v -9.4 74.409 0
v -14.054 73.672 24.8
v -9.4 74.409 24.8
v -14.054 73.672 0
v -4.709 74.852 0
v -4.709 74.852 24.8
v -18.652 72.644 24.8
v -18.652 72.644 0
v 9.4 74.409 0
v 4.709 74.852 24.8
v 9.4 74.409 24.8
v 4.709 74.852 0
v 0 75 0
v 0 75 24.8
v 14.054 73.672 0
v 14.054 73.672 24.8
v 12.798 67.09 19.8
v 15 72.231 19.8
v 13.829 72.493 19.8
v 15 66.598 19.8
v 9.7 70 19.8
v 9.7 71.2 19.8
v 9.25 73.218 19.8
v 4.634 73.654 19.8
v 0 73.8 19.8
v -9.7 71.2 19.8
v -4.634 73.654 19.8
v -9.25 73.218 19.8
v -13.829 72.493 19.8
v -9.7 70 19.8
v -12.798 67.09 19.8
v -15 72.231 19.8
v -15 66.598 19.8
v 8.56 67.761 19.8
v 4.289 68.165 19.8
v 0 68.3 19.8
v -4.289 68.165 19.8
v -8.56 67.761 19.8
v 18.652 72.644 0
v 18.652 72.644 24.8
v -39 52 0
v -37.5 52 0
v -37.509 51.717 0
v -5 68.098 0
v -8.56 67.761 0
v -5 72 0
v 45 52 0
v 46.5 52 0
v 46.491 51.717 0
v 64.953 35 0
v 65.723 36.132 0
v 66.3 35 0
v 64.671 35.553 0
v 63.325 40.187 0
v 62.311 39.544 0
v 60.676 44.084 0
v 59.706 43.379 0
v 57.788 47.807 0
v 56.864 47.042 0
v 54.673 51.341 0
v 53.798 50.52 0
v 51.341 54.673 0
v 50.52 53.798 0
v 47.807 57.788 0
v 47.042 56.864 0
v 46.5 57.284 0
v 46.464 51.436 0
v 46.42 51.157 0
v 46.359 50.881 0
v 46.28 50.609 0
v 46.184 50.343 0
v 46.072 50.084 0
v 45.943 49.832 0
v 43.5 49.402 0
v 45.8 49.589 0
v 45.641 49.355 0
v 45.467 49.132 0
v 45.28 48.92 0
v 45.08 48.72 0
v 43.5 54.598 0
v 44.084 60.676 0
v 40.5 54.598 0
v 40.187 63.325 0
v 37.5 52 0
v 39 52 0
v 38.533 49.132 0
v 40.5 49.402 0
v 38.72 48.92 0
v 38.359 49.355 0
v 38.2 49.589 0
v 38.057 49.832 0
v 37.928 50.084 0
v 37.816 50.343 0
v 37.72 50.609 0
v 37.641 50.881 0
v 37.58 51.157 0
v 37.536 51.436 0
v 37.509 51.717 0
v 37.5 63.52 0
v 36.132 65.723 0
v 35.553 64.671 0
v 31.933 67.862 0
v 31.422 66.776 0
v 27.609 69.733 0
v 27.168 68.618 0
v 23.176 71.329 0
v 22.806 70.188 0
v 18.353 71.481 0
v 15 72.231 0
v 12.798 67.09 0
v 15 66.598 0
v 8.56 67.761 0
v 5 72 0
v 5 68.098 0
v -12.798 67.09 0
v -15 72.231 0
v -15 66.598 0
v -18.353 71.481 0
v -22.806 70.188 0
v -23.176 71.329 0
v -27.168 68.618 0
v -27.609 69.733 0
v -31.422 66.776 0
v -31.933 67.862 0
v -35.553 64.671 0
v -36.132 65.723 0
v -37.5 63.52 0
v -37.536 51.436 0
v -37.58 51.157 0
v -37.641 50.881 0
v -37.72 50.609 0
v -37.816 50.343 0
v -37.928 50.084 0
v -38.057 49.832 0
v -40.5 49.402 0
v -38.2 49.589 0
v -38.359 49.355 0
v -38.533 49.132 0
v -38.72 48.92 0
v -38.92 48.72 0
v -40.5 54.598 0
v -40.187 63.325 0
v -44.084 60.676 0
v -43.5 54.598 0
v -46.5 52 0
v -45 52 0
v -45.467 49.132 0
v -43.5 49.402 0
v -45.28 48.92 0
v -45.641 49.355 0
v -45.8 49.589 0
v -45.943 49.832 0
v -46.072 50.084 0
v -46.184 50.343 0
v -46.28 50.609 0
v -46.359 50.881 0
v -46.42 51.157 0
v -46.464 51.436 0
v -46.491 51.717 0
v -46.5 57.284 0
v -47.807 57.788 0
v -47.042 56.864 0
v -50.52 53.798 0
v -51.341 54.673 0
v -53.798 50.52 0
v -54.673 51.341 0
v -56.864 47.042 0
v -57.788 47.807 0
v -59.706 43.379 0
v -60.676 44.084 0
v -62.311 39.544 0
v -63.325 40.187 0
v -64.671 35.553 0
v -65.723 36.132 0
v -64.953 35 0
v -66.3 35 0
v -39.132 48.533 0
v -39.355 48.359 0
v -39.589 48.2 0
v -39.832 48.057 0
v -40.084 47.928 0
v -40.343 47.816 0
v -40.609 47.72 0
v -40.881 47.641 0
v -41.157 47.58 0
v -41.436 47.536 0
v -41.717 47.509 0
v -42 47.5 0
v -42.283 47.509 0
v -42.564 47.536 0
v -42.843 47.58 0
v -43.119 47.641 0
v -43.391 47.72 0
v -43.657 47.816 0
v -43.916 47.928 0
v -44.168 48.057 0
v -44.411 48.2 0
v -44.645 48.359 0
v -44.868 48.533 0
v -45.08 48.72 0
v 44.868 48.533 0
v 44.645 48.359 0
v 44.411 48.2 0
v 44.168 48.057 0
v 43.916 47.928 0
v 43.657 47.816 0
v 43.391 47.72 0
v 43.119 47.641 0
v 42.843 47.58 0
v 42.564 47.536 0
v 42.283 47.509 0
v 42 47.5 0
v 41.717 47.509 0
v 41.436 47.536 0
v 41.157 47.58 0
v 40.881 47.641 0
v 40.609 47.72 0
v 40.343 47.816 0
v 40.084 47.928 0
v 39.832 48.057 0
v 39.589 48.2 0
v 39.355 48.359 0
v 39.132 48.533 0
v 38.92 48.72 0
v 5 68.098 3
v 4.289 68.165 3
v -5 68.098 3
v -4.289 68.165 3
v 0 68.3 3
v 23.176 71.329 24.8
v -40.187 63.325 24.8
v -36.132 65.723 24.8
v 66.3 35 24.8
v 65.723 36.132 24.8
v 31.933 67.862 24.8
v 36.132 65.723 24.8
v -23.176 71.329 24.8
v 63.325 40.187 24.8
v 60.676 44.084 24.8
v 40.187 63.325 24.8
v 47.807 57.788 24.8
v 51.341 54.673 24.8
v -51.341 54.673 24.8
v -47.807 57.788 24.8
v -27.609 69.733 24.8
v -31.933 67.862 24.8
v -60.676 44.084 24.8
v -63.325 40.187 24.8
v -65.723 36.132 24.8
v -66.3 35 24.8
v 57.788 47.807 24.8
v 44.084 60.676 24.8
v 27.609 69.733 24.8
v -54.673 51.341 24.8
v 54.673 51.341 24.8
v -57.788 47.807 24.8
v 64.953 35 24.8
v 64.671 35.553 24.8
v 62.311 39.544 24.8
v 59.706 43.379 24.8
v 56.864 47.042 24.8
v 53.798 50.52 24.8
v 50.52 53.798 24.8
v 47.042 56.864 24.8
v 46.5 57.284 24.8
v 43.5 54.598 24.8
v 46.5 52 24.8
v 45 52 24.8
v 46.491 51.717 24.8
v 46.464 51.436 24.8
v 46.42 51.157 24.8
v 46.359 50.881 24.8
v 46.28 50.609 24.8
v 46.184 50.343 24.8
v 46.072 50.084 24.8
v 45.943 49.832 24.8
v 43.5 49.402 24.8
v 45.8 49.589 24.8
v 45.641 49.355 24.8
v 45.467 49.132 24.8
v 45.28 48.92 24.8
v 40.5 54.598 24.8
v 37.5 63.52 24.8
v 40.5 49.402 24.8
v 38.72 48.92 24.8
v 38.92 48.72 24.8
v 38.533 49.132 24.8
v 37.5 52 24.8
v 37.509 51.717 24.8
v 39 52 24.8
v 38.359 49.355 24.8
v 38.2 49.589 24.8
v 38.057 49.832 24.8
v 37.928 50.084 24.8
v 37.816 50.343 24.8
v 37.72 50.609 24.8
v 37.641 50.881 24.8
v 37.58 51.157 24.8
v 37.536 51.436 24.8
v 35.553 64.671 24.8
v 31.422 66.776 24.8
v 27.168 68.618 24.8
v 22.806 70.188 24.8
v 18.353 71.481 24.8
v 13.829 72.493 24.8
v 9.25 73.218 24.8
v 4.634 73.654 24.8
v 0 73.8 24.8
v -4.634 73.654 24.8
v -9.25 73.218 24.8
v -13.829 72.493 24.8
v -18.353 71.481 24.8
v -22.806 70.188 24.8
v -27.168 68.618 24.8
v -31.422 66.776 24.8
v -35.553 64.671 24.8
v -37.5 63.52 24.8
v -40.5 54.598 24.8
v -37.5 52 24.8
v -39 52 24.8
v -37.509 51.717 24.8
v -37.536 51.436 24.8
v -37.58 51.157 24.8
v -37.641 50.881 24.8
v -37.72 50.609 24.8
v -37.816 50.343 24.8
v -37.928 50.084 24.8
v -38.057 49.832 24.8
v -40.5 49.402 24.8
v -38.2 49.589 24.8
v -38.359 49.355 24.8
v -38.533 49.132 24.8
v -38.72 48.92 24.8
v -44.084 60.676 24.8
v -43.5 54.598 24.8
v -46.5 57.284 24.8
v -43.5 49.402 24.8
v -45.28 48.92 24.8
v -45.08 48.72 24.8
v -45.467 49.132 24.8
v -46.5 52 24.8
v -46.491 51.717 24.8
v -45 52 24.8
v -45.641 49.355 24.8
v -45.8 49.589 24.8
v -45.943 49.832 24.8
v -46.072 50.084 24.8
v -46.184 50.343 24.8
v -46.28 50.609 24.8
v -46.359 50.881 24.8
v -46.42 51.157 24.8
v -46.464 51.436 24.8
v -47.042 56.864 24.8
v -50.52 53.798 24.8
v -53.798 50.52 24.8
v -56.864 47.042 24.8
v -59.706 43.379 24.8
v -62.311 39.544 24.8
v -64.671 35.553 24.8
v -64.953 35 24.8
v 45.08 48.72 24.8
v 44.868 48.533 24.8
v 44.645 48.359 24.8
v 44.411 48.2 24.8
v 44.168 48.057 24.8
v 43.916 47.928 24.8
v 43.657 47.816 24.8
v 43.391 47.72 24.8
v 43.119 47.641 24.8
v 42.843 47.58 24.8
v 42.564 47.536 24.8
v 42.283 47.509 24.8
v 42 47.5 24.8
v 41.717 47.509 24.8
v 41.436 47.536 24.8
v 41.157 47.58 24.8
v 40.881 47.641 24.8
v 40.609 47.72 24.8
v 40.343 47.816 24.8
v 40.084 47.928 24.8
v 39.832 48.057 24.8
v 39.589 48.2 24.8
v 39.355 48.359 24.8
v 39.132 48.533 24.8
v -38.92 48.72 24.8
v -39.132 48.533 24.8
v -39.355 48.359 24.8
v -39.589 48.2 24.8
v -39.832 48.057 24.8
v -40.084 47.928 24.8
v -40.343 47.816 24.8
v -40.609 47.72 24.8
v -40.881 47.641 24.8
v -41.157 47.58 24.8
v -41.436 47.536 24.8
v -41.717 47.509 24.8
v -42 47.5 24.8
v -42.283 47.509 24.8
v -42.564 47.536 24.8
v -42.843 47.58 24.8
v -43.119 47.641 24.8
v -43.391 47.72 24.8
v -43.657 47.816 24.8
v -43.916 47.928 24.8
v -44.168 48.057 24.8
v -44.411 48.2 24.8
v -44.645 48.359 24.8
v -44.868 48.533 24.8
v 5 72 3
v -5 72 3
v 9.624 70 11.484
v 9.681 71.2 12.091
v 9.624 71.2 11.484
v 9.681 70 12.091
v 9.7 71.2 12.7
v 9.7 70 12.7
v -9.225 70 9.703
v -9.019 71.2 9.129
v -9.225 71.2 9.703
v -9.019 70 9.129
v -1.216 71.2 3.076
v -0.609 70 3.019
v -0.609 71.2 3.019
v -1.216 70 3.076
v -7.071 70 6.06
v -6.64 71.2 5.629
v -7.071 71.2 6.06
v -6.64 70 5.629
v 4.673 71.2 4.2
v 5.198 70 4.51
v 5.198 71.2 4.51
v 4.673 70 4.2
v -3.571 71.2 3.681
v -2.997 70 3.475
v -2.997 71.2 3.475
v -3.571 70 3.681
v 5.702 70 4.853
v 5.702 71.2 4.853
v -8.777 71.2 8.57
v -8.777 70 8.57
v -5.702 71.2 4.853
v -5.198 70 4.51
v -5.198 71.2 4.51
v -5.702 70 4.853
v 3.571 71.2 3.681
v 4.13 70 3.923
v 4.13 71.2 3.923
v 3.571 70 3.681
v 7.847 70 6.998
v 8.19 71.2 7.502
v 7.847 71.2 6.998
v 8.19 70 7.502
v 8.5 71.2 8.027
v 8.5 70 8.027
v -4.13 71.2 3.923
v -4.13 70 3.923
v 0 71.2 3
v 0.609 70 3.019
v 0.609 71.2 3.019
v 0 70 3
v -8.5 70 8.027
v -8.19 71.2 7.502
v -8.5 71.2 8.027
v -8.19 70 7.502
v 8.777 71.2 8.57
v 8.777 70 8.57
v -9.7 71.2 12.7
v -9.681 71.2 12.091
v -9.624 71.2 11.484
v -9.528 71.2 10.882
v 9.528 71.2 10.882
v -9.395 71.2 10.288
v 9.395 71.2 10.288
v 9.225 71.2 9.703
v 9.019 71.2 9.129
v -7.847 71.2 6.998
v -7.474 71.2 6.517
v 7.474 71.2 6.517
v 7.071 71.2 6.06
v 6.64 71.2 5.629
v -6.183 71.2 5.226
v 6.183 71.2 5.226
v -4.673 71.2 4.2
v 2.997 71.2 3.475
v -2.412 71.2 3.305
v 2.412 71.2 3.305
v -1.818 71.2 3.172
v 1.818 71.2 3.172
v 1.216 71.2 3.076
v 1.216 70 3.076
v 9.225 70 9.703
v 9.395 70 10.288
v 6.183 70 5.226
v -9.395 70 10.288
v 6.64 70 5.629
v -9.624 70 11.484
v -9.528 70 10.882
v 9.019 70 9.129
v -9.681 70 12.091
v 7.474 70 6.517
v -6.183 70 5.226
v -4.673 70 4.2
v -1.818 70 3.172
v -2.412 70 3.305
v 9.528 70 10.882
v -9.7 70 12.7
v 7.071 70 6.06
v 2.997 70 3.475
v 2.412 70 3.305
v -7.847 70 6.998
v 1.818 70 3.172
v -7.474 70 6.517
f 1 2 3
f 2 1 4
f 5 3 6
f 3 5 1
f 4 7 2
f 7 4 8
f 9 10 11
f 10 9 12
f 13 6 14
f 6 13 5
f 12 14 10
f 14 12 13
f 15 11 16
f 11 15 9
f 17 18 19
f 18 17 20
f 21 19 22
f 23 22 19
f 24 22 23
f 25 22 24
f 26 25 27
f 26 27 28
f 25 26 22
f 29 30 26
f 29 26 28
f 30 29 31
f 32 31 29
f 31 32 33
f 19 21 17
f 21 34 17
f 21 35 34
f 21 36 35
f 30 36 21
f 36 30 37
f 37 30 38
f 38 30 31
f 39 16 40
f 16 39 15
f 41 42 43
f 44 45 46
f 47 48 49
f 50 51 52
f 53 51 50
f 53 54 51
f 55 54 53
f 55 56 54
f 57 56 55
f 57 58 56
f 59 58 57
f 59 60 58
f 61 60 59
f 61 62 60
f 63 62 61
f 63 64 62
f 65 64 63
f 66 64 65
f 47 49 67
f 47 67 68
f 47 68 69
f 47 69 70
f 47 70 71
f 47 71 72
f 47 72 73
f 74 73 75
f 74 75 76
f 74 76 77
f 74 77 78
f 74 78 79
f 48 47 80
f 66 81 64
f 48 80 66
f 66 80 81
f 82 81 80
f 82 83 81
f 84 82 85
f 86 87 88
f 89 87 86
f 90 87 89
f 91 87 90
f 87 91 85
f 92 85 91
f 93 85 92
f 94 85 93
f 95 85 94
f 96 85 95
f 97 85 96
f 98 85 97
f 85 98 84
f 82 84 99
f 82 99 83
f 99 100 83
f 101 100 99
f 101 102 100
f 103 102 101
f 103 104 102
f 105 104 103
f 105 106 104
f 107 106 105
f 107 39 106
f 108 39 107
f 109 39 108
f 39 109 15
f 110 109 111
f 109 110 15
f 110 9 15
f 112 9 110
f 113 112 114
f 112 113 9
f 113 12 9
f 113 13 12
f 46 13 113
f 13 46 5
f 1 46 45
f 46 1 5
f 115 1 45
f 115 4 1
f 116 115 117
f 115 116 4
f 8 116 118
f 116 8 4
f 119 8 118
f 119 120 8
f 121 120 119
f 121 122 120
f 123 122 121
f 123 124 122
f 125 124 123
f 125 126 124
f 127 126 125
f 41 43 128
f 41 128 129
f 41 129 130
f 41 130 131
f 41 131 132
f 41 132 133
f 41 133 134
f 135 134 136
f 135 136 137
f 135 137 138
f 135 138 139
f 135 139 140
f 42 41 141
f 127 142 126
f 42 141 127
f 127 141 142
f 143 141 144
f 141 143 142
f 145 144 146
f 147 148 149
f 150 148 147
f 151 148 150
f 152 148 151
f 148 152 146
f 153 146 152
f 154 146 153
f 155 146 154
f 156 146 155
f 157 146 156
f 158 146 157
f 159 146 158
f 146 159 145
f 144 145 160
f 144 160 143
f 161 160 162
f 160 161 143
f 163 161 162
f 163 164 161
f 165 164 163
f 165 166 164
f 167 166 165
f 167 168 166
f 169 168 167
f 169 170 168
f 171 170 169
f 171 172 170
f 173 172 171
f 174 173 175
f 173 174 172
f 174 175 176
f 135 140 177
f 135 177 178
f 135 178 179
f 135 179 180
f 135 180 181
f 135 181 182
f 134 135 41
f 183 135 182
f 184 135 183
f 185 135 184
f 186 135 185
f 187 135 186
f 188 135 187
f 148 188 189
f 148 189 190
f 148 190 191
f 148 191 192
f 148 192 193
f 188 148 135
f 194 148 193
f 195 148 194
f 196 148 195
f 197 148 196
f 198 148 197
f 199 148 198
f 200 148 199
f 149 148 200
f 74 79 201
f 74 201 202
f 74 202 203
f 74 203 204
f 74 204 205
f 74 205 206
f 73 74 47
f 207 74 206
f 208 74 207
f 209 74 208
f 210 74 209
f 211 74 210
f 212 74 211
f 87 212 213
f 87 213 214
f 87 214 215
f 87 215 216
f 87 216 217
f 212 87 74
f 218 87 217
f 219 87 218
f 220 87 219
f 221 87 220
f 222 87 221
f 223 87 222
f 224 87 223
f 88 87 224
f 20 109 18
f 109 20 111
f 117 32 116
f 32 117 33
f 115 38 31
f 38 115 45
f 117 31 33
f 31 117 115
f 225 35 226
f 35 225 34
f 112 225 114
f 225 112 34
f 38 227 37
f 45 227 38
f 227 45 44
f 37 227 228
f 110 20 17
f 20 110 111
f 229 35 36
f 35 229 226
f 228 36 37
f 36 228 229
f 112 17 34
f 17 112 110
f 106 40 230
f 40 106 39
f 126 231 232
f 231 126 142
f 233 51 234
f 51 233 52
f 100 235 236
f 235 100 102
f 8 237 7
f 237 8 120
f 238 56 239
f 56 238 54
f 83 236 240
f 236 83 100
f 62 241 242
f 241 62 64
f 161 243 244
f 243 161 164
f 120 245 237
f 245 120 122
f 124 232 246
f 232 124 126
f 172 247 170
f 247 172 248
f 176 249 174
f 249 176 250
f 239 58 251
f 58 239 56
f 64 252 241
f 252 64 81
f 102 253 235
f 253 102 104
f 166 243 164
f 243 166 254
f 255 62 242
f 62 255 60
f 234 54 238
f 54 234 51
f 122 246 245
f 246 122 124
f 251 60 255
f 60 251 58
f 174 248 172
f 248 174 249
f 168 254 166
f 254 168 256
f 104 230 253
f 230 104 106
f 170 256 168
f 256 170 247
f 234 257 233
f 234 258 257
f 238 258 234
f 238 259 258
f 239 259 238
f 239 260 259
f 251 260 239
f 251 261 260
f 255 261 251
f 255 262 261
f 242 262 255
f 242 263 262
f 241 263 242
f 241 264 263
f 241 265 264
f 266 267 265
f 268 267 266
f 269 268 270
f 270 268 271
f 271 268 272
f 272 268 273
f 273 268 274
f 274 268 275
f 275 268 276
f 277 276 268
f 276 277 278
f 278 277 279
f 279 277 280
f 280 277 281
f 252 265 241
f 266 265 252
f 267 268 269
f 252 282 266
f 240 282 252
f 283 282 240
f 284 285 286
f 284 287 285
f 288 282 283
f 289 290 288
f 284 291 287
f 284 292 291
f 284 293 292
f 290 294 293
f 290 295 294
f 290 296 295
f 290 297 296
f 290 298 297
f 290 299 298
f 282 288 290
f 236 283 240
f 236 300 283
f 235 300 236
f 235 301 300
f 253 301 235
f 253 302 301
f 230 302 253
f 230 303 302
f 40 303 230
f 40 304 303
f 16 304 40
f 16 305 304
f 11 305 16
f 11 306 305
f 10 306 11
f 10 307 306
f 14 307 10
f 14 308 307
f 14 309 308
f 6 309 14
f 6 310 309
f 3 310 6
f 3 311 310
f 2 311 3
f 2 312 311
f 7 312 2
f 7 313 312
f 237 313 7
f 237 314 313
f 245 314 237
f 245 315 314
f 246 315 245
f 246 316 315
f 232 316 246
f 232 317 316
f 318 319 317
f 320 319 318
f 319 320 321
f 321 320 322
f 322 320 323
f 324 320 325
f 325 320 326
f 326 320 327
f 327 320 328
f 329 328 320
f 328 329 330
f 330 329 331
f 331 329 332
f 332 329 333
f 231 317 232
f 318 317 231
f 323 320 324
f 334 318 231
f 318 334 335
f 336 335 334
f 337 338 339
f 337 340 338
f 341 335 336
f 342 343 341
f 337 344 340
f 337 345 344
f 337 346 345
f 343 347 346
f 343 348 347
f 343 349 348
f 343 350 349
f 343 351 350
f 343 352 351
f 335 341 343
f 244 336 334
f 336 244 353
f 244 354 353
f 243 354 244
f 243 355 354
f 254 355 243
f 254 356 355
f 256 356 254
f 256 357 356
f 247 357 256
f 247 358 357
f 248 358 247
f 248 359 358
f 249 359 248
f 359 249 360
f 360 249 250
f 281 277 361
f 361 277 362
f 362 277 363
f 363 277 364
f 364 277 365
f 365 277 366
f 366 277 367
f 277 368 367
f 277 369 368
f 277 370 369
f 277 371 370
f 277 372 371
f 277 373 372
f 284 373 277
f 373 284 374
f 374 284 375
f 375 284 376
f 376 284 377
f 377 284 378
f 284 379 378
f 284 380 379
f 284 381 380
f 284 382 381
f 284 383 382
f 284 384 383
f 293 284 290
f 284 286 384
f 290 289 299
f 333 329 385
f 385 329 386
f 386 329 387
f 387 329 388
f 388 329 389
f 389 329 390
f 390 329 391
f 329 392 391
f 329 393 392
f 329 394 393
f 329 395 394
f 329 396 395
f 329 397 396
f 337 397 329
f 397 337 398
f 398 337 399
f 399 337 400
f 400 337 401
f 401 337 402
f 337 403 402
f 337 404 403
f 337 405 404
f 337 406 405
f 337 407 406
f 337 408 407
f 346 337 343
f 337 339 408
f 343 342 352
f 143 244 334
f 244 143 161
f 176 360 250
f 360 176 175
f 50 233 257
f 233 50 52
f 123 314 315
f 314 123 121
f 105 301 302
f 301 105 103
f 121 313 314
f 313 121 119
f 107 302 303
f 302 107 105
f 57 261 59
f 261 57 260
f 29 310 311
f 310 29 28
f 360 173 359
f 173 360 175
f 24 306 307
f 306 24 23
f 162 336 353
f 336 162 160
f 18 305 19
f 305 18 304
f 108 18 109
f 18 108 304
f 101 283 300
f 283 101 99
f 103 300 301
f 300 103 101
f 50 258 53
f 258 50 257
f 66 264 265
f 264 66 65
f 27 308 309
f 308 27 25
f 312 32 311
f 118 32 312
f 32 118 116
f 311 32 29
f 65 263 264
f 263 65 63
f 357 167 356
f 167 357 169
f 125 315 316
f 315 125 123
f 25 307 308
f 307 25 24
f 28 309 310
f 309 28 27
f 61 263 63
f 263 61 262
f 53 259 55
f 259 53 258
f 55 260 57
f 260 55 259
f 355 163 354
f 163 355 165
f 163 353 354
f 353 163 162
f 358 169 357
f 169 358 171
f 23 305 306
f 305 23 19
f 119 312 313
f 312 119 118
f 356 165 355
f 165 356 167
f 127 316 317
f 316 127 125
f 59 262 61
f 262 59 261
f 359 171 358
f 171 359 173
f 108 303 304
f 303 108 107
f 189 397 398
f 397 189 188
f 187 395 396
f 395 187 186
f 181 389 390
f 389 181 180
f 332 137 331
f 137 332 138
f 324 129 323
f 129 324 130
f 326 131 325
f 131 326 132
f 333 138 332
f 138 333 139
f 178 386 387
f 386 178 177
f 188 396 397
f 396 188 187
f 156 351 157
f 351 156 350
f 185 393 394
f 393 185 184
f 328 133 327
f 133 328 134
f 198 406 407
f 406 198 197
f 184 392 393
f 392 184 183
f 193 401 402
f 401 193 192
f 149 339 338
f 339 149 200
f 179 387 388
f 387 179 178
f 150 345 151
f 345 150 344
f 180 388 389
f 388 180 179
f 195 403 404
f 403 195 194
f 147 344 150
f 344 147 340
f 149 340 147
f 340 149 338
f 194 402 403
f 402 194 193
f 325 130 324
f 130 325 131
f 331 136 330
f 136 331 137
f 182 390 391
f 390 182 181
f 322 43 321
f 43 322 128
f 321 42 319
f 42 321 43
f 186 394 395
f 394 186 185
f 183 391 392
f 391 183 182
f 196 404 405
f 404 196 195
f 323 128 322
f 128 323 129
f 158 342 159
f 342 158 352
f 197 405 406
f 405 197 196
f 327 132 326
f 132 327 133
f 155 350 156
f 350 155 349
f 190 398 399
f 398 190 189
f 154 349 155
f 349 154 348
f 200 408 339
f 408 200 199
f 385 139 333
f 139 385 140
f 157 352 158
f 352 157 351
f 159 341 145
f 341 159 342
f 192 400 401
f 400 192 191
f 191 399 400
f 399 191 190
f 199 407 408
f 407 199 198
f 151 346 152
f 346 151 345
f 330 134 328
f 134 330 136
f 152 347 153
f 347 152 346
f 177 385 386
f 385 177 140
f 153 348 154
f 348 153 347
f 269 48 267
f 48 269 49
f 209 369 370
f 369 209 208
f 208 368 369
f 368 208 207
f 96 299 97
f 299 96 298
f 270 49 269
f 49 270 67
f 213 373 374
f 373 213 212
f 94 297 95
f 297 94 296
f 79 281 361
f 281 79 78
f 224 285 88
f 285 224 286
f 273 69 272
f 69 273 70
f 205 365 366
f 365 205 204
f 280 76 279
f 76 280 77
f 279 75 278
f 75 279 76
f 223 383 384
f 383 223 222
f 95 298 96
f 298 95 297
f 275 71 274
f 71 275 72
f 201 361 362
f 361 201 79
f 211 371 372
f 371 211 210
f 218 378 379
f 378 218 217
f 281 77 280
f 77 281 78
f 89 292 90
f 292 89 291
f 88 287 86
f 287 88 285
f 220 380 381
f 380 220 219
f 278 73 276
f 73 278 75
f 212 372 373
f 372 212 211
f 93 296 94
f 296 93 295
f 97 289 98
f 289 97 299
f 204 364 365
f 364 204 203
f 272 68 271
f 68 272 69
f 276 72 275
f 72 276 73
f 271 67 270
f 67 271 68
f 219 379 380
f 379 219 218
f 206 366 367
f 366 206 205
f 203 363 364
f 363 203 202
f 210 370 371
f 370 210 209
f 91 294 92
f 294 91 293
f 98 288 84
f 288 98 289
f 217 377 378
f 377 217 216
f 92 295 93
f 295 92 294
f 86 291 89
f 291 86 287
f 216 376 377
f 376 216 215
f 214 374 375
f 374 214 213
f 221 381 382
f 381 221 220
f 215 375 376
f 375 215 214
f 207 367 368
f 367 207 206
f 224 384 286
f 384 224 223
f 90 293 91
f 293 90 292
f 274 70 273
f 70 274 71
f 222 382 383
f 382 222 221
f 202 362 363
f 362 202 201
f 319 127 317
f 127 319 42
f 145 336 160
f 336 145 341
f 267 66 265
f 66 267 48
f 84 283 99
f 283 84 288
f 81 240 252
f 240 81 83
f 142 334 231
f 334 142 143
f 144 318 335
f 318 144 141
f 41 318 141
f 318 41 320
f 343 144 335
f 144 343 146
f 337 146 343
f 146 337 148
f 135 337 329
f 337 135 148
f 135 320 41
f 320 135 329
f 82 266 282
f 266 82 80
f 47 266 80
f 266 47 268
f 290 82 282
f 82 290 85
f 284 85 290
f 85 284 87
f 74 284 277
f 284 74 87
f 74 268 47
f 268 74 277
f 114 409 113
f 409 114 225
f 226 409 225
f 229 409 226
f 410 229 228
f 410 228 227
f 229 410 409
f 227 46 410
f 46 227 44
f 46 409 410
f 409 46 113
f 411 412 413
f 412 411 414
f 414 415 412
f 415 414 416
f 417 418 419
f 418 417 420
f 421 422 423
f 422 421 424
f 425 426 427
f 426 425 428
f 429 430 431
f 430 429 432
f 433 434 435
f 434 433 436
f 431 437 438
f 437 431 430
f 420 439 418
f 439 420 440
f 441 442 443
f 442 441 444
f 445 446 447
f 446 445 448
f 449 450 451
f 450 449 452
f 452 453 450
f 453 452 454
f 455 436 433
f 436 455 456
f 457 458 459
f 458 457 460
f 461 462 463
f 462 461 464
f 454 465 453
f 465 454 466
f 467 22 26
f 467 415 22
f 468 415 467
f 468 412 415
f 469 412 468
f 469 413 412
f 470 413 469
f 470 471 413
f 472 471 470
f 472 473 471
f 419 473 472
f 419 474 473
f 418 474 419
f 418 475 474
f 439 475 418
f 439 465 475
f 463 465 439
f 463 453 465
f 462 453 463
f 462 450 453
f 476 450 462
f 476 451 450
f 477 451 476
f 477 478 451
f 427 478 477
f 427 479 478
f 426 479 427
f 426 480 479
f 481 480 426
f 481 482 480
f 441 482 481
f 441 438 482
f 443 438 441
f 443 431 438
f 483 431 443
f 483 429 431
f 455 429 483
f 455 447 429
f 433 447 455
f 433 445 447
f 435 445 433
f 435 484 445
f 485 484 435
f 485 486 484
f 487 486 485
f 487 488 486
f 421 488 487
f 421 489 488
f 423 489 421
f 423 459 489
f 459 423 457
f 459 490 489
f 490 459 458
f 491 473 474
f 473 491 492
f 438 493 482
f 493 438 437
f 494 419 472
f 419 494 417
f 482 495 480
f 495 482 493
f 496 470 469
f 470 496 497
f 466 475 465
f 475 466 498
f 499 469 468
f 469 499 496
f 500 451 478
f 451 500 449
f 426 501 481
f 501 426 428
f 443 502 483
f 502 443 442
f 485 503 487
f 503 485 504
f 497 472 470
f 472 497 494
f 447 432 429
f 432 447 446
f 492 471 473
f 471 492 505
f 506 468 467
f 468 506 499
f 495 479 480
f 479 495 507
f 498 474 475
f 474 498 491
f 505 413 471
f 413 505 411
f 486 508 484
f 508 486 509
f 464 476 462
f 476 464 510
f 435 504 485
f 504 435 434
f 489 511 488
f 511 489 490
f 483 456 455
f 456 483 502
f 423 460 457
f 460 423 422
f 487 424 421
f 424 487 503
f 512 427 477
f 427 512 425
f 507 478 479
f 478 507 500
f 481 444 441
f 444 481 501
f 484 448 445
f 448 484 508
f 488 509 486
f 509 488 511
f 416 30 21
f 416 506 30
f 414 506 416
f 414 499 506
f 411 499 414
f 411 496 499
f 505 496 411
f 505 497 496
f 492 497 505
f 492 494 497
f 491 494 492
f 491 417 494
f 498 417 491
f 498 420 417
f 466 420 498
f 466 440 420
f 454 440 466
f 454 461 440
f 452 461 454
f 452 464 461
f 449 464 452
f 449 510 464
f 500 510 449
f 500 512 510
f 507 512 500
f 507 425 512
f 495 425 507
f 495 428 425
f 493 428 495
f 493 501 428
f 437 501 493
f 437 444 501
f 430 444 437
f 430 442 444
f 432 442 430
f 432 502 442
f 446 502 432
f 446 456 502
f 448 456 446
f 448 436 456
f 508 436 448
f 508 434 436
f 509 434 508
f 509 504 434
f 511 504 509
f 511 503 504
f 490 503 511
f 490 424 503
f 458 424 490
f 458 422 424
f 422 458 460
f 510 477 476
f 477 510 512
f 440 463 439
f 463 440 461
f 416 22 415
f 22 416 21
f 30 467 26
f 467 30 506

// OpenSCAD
$fn=100;
module cubexy(x,y,z,zz) {
    translate([-x/2,-y/2,zz]) cube([x,y,z]);
}

module stand(h) {
    difference() {
        cylinder(d=8,h=h);
        translate([0,0,-1]) cylinder(d=6,h=h+2,$fn=6);
    }
}


difference() {
union() {
    // coil support
    difference() {
        translate([0,0,0]) cylinder(r=75,h=19.8);
    
        translate([-80,-80,-1]) cube([160,80+50,30]);
        translate([15,-80,-1]) cube([50,160,30]);
        translate([-15-50,-80,-1]) cube([50,160,30]);
        translate([0,0,-1]) cylinder(r=69.5-1.2,h=30);
    }
    
    // outer wall
    difference() {
        translate([0,0,0]) cylinder(r=75,h=24.8);
    
        translate([-80,-80,-1]) cube([160,80+35,30]);
        //translate([40,-80,-1]) cube([30,160,30]);
        //translate([-40-30,-80,-1]) cube([30,160,30]);
        translate([0,0,-1]) cylinder(r=75-1.2,h=30);
    }
    
    translate([-42,52,0]) cylinder(d=9,h=24.8);
    translate([42,52,0]) cylinder(d=9,h=24.8);
    
    translate([-42,52+10,0]) cubexy(9,20,24.8,0);
    translate([42,52+10,0]) cubexy(9,20,24.8,0);   
}

    translate([-42,52,-1]) #cylinder(d=6,h=30,$fn=6);
    translate([42,52,-1]) #cylinder(d=6,h=30,$fn=6);
    translate([-5,62,0]) #cube([10,10,3]);

    translate([0,70,12.7]) rotate([270,0,0]) #cylinder(d=19.4,h=1.2);
    translate([-9.7,70,12.7]) #cube([19.4,1.2,30]);

    translate([0,0,-1]) difference() {
        cylinder(r=90,h=30);
        cylinder(r=75,h=30);
    }
}
